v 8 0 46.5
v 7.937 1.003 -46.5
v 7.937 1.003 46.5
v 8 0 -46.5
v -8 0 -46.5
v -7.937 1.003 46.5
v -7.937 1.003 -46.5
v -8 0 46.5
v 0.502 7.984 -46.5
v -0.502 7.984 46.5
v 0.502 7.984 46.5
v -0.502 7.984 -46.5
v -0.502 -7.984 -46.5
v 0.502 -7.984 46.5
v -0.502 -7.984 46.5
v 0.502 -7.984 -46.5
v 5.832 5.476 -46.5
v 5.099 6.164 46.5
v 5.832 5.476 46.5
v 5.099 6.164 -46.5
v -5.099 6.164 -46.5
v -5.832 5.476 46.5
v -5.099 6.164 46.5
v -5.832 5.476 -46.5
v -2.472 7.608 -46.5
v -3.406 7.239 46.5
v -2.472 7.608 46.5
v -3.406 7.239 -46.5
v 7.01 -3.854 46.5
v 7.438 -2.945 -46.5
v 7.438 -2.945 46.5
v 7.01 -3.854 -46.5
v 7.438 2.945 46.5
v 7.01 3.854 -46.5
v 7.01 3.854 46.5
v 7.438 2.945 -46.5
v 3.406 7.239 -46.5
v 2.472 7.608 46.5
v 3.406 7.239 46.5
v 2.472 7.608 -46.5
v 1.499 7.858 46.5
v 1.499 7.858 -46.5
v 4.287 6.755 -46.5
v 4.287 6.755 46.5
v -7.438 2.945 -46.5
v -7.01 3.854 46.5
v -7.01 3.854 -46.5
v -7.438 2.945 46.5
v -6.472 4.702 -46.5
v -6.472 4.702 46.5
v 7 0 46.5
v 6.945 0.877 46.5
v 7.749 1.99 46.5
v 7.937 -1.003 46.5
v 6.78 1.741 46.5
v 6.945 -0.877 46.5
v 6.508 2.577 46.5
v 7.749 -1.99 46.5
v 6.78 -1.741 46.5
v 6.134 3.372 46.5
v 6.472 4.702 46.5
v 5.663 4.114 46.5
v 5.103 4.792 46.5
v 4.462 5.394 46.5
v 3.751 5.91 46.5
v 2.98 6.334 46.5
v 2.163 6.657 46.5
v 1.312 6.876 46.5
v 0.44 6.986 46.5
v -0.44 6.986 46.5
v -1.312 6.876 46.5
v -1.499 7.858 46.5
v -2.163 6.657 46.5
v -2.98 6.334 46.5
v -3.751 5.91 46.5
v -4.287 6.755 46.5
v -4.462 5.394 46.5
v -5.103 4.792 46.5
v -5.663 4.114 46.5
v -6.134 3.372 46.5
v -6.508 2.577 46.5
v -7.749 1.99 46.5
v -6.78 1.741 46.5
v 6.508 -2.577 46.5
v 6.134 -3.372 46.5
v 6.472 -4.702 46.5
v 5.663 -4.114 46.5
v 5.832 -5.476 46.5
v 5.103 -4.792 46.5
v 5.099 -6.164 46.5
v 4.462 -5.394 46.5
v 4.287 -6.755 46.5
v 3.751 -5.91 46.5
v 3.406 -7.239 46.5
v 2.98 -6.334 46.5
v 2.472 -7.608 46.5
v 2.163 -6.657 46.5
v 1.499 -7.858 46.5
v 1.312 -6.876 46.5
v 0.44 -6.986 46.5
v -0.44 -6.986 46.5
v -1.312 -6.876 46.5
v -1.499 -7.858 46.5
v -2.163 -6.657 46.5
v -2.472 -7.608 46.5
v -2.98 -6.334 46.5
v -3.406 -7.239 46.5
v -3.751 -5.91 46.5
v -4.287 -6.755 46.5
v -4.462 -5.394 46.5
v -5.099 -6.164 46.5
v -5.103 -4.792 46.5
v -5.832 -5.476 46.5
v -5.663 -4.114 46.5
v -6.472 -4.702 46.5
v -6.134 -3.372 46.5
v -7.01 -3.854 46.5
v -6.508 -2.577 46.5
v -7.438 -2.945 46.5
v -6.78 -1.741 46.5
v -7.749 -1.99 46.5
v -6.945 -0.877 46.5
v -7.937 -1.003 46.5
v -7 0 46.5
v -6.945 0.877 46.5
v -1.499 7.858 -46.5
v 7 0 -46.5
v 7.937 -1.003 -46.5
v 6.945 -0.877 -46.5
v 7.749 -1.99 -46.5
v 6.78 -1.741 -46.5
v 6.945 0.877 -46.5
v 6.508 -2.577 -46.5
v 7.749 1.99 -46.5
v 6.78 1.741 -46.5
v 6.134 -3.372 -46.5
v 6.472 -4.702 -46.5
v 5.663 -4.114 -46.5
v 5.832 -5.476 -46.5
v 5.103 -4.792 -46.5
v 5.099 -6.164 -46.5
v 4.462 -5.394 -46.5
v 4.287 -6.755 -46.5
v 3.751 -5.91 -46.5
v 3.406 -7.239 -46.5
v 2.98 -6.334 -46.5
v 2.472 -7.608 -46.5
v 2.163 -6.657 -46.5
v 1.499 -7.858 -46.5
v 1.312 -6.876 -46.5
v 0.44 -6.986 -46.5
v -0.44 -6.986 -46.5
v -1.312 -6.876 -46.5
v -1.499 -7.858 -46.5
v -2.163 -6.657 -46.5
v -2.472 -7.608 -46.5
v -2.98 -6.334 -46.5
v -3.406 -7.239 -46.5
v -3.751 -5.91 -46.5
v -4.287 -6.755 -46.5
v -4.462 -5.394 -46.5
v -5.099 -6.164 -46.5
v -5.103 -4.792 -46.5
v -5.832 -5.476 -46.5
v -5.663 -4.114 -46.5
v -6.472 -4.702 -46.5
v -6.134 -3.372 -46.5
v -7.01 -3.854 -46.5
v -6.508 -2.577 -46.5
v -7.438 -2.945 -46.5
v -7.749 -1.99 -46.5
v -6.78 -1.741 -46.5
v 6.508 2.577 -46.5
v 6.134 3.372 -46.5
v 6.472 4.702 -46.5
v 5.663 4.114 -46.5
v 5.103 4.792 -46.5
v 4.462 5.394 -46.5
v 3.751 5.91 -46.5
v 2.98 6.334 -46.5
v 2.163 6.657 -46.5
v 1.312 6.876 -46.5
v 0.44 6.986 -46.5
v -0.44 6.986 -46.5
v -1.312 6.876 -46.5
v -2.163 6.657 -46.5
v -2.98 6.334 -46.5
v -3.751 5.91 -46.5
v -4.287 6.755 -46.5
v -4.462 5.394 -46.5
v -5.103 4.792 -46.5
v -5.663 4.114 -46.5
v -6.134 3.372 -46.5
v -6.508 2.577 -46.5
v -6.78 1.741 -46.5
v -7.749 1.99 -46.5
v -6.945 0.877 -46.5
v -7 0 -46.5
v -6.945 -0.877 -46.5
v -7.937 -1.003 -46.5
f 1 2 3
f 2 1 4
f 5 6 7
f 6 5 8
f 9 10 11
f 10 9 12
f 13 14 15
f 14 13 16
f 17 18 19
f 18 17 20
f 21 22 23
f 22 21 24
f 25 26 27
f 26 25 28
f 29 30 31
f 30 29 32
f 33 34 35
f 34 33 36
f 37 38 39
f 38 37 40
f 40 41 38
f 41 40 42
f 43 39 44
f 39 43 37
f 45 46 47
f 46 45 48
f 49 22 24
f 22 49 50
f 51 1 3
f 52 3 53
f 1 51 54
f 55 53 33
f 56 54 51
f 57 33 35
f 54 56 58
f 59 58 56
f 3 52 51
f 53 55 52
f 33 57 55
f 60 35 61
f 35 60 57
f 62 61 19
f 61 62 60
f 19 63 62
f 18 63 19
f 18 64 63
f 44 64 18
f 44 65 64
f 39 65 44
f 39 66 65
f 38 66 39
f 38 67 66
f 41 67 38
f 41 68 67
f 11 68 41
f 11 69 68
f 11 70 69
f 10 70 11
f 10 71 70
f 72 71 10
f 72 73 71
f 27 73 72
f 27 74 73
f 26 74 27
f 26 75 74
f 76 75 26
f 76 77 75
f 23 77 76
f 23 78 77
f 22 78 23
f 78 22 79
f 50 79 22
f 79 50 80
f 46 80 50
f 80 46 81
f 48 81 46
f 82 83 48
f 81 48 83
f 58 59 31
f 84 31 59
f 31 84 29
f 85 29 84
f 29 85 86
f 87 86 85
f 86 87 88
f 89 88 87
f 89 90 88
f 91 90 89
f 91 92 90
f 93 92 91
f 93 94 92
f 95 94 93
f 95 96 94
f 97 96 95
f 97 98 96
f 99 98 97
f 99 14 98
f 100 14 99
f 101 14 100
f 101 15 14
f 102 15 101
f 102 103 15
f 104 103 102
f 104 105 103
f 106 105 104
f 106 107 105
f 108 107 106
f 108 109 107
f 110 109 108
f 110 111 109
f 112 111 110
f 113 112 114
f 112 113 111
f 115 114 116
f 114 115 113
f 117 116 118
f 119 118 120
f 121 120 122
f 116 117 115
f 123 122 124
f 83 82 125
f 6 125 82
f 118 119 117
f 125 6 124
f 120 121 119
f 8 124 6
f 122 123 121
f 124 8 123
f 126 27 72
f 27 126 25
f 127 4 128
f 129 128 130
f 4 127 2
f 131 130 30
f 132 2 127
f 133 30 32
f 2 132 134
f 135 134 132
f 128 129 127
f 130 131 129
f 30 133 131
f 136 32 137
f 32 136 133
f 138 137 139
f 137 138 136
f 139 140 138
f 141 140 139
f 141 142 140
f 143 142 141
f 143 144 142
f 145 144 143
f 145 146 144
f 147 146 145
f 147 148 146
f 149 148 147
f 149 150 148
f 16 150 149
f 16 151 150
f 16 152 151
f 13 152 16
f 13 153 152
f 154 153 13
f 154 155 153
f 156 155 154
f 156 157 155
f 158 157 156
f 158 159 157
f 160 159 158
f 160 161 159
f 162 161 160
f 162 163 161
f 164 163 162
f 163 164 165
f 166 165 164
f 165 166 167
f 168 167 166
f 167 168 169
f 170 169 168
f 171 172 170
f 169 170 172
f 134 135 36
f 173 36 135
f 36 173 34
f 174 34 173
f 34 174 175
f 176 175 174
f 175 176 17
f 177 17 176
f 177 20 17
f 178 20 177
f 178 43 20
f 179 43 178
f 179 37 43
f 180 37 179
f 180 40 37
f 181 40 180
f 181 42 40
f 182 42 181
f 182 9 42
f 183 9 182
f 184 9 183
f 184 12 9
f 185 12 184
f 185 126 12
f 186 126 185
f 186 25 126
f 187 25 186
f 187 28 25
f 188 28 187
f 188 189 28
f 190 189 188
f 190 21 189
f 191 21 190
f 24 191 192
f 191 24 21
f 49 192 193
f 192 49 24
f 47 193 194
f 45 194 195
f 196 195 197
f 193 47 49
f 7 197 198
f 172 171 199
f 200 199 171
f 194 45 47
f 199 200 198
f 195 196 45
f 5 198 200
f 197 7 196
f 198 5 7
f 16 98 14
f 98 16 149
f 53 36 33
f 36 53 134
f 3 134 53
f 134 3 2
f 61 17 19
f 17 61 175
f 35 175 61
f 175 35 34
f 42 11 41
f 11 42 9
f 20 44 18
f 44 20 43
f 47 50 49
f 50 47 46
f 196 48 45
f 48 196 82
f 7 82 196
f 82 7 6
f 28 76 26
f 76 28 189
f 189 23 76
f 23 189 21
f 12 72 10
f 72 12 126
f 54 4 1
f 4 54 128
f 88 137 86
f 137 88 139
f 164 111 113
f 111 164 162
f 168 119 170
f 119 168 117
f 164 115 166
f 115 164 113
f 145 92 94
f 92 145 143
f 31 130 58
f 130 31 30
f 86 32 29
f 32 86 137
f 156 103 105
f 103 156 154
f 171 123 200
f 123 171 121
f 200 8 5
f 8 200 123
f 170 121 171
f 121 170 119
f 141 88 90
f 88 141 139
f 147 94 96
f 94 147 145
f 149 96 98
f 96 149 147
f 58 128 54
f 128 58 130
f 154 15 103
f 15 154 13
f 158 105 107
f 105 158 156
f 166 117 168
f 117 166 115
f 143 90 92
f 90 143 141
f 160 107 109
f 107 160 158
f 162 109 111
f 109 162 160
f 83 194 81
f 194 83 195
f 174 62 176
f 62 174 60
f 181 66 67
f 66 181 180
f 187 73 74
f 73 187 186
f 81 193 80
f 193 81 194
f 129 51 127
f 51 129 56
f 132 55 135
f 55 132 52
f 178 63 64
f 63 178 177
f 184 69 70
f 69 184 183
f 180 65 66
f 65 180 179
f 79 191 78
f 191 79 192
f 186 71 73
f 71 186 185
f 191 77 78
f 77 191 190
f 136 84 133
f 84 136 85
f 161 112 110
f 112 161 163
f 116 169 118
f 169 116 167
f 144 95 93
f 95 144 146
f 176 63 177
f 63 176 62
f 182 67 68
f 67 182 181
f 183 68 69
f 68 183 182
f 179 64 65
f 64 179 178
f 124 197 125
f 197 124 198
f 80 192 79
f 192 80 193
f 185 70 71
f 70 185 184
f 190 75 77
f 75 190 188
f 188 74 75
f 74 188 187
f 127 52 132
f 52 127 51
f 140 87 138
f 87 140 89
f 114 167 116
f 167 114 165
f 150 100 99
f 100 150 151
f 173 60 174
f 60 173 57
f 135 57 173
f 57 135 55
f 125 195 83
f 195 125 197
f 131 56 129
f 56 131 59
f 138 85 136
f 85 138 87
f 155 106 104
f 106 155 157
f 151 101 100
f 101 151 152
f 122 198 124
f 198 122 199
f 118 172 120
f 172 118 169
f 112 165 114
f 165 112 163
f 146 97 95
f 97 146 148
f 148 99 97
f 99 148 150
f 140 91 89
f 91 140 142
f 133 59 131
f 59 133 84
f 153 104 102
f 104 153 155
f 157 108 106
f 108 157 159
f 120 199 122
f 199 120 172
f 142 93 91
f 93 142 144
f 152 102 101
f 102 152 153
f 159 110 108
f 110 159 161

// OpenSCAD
$fn = 50;


difference() {
	union() {
		translate(v = [0, 0, -46.5000000000]) {
			cylinder(h = 93, r = 8.0000000000);
		}
	}
	union() {
		translate(v = [0, 0, -100.0000000000]) {
			cylinder(h = 200, r = 7);
		}
	}
}
